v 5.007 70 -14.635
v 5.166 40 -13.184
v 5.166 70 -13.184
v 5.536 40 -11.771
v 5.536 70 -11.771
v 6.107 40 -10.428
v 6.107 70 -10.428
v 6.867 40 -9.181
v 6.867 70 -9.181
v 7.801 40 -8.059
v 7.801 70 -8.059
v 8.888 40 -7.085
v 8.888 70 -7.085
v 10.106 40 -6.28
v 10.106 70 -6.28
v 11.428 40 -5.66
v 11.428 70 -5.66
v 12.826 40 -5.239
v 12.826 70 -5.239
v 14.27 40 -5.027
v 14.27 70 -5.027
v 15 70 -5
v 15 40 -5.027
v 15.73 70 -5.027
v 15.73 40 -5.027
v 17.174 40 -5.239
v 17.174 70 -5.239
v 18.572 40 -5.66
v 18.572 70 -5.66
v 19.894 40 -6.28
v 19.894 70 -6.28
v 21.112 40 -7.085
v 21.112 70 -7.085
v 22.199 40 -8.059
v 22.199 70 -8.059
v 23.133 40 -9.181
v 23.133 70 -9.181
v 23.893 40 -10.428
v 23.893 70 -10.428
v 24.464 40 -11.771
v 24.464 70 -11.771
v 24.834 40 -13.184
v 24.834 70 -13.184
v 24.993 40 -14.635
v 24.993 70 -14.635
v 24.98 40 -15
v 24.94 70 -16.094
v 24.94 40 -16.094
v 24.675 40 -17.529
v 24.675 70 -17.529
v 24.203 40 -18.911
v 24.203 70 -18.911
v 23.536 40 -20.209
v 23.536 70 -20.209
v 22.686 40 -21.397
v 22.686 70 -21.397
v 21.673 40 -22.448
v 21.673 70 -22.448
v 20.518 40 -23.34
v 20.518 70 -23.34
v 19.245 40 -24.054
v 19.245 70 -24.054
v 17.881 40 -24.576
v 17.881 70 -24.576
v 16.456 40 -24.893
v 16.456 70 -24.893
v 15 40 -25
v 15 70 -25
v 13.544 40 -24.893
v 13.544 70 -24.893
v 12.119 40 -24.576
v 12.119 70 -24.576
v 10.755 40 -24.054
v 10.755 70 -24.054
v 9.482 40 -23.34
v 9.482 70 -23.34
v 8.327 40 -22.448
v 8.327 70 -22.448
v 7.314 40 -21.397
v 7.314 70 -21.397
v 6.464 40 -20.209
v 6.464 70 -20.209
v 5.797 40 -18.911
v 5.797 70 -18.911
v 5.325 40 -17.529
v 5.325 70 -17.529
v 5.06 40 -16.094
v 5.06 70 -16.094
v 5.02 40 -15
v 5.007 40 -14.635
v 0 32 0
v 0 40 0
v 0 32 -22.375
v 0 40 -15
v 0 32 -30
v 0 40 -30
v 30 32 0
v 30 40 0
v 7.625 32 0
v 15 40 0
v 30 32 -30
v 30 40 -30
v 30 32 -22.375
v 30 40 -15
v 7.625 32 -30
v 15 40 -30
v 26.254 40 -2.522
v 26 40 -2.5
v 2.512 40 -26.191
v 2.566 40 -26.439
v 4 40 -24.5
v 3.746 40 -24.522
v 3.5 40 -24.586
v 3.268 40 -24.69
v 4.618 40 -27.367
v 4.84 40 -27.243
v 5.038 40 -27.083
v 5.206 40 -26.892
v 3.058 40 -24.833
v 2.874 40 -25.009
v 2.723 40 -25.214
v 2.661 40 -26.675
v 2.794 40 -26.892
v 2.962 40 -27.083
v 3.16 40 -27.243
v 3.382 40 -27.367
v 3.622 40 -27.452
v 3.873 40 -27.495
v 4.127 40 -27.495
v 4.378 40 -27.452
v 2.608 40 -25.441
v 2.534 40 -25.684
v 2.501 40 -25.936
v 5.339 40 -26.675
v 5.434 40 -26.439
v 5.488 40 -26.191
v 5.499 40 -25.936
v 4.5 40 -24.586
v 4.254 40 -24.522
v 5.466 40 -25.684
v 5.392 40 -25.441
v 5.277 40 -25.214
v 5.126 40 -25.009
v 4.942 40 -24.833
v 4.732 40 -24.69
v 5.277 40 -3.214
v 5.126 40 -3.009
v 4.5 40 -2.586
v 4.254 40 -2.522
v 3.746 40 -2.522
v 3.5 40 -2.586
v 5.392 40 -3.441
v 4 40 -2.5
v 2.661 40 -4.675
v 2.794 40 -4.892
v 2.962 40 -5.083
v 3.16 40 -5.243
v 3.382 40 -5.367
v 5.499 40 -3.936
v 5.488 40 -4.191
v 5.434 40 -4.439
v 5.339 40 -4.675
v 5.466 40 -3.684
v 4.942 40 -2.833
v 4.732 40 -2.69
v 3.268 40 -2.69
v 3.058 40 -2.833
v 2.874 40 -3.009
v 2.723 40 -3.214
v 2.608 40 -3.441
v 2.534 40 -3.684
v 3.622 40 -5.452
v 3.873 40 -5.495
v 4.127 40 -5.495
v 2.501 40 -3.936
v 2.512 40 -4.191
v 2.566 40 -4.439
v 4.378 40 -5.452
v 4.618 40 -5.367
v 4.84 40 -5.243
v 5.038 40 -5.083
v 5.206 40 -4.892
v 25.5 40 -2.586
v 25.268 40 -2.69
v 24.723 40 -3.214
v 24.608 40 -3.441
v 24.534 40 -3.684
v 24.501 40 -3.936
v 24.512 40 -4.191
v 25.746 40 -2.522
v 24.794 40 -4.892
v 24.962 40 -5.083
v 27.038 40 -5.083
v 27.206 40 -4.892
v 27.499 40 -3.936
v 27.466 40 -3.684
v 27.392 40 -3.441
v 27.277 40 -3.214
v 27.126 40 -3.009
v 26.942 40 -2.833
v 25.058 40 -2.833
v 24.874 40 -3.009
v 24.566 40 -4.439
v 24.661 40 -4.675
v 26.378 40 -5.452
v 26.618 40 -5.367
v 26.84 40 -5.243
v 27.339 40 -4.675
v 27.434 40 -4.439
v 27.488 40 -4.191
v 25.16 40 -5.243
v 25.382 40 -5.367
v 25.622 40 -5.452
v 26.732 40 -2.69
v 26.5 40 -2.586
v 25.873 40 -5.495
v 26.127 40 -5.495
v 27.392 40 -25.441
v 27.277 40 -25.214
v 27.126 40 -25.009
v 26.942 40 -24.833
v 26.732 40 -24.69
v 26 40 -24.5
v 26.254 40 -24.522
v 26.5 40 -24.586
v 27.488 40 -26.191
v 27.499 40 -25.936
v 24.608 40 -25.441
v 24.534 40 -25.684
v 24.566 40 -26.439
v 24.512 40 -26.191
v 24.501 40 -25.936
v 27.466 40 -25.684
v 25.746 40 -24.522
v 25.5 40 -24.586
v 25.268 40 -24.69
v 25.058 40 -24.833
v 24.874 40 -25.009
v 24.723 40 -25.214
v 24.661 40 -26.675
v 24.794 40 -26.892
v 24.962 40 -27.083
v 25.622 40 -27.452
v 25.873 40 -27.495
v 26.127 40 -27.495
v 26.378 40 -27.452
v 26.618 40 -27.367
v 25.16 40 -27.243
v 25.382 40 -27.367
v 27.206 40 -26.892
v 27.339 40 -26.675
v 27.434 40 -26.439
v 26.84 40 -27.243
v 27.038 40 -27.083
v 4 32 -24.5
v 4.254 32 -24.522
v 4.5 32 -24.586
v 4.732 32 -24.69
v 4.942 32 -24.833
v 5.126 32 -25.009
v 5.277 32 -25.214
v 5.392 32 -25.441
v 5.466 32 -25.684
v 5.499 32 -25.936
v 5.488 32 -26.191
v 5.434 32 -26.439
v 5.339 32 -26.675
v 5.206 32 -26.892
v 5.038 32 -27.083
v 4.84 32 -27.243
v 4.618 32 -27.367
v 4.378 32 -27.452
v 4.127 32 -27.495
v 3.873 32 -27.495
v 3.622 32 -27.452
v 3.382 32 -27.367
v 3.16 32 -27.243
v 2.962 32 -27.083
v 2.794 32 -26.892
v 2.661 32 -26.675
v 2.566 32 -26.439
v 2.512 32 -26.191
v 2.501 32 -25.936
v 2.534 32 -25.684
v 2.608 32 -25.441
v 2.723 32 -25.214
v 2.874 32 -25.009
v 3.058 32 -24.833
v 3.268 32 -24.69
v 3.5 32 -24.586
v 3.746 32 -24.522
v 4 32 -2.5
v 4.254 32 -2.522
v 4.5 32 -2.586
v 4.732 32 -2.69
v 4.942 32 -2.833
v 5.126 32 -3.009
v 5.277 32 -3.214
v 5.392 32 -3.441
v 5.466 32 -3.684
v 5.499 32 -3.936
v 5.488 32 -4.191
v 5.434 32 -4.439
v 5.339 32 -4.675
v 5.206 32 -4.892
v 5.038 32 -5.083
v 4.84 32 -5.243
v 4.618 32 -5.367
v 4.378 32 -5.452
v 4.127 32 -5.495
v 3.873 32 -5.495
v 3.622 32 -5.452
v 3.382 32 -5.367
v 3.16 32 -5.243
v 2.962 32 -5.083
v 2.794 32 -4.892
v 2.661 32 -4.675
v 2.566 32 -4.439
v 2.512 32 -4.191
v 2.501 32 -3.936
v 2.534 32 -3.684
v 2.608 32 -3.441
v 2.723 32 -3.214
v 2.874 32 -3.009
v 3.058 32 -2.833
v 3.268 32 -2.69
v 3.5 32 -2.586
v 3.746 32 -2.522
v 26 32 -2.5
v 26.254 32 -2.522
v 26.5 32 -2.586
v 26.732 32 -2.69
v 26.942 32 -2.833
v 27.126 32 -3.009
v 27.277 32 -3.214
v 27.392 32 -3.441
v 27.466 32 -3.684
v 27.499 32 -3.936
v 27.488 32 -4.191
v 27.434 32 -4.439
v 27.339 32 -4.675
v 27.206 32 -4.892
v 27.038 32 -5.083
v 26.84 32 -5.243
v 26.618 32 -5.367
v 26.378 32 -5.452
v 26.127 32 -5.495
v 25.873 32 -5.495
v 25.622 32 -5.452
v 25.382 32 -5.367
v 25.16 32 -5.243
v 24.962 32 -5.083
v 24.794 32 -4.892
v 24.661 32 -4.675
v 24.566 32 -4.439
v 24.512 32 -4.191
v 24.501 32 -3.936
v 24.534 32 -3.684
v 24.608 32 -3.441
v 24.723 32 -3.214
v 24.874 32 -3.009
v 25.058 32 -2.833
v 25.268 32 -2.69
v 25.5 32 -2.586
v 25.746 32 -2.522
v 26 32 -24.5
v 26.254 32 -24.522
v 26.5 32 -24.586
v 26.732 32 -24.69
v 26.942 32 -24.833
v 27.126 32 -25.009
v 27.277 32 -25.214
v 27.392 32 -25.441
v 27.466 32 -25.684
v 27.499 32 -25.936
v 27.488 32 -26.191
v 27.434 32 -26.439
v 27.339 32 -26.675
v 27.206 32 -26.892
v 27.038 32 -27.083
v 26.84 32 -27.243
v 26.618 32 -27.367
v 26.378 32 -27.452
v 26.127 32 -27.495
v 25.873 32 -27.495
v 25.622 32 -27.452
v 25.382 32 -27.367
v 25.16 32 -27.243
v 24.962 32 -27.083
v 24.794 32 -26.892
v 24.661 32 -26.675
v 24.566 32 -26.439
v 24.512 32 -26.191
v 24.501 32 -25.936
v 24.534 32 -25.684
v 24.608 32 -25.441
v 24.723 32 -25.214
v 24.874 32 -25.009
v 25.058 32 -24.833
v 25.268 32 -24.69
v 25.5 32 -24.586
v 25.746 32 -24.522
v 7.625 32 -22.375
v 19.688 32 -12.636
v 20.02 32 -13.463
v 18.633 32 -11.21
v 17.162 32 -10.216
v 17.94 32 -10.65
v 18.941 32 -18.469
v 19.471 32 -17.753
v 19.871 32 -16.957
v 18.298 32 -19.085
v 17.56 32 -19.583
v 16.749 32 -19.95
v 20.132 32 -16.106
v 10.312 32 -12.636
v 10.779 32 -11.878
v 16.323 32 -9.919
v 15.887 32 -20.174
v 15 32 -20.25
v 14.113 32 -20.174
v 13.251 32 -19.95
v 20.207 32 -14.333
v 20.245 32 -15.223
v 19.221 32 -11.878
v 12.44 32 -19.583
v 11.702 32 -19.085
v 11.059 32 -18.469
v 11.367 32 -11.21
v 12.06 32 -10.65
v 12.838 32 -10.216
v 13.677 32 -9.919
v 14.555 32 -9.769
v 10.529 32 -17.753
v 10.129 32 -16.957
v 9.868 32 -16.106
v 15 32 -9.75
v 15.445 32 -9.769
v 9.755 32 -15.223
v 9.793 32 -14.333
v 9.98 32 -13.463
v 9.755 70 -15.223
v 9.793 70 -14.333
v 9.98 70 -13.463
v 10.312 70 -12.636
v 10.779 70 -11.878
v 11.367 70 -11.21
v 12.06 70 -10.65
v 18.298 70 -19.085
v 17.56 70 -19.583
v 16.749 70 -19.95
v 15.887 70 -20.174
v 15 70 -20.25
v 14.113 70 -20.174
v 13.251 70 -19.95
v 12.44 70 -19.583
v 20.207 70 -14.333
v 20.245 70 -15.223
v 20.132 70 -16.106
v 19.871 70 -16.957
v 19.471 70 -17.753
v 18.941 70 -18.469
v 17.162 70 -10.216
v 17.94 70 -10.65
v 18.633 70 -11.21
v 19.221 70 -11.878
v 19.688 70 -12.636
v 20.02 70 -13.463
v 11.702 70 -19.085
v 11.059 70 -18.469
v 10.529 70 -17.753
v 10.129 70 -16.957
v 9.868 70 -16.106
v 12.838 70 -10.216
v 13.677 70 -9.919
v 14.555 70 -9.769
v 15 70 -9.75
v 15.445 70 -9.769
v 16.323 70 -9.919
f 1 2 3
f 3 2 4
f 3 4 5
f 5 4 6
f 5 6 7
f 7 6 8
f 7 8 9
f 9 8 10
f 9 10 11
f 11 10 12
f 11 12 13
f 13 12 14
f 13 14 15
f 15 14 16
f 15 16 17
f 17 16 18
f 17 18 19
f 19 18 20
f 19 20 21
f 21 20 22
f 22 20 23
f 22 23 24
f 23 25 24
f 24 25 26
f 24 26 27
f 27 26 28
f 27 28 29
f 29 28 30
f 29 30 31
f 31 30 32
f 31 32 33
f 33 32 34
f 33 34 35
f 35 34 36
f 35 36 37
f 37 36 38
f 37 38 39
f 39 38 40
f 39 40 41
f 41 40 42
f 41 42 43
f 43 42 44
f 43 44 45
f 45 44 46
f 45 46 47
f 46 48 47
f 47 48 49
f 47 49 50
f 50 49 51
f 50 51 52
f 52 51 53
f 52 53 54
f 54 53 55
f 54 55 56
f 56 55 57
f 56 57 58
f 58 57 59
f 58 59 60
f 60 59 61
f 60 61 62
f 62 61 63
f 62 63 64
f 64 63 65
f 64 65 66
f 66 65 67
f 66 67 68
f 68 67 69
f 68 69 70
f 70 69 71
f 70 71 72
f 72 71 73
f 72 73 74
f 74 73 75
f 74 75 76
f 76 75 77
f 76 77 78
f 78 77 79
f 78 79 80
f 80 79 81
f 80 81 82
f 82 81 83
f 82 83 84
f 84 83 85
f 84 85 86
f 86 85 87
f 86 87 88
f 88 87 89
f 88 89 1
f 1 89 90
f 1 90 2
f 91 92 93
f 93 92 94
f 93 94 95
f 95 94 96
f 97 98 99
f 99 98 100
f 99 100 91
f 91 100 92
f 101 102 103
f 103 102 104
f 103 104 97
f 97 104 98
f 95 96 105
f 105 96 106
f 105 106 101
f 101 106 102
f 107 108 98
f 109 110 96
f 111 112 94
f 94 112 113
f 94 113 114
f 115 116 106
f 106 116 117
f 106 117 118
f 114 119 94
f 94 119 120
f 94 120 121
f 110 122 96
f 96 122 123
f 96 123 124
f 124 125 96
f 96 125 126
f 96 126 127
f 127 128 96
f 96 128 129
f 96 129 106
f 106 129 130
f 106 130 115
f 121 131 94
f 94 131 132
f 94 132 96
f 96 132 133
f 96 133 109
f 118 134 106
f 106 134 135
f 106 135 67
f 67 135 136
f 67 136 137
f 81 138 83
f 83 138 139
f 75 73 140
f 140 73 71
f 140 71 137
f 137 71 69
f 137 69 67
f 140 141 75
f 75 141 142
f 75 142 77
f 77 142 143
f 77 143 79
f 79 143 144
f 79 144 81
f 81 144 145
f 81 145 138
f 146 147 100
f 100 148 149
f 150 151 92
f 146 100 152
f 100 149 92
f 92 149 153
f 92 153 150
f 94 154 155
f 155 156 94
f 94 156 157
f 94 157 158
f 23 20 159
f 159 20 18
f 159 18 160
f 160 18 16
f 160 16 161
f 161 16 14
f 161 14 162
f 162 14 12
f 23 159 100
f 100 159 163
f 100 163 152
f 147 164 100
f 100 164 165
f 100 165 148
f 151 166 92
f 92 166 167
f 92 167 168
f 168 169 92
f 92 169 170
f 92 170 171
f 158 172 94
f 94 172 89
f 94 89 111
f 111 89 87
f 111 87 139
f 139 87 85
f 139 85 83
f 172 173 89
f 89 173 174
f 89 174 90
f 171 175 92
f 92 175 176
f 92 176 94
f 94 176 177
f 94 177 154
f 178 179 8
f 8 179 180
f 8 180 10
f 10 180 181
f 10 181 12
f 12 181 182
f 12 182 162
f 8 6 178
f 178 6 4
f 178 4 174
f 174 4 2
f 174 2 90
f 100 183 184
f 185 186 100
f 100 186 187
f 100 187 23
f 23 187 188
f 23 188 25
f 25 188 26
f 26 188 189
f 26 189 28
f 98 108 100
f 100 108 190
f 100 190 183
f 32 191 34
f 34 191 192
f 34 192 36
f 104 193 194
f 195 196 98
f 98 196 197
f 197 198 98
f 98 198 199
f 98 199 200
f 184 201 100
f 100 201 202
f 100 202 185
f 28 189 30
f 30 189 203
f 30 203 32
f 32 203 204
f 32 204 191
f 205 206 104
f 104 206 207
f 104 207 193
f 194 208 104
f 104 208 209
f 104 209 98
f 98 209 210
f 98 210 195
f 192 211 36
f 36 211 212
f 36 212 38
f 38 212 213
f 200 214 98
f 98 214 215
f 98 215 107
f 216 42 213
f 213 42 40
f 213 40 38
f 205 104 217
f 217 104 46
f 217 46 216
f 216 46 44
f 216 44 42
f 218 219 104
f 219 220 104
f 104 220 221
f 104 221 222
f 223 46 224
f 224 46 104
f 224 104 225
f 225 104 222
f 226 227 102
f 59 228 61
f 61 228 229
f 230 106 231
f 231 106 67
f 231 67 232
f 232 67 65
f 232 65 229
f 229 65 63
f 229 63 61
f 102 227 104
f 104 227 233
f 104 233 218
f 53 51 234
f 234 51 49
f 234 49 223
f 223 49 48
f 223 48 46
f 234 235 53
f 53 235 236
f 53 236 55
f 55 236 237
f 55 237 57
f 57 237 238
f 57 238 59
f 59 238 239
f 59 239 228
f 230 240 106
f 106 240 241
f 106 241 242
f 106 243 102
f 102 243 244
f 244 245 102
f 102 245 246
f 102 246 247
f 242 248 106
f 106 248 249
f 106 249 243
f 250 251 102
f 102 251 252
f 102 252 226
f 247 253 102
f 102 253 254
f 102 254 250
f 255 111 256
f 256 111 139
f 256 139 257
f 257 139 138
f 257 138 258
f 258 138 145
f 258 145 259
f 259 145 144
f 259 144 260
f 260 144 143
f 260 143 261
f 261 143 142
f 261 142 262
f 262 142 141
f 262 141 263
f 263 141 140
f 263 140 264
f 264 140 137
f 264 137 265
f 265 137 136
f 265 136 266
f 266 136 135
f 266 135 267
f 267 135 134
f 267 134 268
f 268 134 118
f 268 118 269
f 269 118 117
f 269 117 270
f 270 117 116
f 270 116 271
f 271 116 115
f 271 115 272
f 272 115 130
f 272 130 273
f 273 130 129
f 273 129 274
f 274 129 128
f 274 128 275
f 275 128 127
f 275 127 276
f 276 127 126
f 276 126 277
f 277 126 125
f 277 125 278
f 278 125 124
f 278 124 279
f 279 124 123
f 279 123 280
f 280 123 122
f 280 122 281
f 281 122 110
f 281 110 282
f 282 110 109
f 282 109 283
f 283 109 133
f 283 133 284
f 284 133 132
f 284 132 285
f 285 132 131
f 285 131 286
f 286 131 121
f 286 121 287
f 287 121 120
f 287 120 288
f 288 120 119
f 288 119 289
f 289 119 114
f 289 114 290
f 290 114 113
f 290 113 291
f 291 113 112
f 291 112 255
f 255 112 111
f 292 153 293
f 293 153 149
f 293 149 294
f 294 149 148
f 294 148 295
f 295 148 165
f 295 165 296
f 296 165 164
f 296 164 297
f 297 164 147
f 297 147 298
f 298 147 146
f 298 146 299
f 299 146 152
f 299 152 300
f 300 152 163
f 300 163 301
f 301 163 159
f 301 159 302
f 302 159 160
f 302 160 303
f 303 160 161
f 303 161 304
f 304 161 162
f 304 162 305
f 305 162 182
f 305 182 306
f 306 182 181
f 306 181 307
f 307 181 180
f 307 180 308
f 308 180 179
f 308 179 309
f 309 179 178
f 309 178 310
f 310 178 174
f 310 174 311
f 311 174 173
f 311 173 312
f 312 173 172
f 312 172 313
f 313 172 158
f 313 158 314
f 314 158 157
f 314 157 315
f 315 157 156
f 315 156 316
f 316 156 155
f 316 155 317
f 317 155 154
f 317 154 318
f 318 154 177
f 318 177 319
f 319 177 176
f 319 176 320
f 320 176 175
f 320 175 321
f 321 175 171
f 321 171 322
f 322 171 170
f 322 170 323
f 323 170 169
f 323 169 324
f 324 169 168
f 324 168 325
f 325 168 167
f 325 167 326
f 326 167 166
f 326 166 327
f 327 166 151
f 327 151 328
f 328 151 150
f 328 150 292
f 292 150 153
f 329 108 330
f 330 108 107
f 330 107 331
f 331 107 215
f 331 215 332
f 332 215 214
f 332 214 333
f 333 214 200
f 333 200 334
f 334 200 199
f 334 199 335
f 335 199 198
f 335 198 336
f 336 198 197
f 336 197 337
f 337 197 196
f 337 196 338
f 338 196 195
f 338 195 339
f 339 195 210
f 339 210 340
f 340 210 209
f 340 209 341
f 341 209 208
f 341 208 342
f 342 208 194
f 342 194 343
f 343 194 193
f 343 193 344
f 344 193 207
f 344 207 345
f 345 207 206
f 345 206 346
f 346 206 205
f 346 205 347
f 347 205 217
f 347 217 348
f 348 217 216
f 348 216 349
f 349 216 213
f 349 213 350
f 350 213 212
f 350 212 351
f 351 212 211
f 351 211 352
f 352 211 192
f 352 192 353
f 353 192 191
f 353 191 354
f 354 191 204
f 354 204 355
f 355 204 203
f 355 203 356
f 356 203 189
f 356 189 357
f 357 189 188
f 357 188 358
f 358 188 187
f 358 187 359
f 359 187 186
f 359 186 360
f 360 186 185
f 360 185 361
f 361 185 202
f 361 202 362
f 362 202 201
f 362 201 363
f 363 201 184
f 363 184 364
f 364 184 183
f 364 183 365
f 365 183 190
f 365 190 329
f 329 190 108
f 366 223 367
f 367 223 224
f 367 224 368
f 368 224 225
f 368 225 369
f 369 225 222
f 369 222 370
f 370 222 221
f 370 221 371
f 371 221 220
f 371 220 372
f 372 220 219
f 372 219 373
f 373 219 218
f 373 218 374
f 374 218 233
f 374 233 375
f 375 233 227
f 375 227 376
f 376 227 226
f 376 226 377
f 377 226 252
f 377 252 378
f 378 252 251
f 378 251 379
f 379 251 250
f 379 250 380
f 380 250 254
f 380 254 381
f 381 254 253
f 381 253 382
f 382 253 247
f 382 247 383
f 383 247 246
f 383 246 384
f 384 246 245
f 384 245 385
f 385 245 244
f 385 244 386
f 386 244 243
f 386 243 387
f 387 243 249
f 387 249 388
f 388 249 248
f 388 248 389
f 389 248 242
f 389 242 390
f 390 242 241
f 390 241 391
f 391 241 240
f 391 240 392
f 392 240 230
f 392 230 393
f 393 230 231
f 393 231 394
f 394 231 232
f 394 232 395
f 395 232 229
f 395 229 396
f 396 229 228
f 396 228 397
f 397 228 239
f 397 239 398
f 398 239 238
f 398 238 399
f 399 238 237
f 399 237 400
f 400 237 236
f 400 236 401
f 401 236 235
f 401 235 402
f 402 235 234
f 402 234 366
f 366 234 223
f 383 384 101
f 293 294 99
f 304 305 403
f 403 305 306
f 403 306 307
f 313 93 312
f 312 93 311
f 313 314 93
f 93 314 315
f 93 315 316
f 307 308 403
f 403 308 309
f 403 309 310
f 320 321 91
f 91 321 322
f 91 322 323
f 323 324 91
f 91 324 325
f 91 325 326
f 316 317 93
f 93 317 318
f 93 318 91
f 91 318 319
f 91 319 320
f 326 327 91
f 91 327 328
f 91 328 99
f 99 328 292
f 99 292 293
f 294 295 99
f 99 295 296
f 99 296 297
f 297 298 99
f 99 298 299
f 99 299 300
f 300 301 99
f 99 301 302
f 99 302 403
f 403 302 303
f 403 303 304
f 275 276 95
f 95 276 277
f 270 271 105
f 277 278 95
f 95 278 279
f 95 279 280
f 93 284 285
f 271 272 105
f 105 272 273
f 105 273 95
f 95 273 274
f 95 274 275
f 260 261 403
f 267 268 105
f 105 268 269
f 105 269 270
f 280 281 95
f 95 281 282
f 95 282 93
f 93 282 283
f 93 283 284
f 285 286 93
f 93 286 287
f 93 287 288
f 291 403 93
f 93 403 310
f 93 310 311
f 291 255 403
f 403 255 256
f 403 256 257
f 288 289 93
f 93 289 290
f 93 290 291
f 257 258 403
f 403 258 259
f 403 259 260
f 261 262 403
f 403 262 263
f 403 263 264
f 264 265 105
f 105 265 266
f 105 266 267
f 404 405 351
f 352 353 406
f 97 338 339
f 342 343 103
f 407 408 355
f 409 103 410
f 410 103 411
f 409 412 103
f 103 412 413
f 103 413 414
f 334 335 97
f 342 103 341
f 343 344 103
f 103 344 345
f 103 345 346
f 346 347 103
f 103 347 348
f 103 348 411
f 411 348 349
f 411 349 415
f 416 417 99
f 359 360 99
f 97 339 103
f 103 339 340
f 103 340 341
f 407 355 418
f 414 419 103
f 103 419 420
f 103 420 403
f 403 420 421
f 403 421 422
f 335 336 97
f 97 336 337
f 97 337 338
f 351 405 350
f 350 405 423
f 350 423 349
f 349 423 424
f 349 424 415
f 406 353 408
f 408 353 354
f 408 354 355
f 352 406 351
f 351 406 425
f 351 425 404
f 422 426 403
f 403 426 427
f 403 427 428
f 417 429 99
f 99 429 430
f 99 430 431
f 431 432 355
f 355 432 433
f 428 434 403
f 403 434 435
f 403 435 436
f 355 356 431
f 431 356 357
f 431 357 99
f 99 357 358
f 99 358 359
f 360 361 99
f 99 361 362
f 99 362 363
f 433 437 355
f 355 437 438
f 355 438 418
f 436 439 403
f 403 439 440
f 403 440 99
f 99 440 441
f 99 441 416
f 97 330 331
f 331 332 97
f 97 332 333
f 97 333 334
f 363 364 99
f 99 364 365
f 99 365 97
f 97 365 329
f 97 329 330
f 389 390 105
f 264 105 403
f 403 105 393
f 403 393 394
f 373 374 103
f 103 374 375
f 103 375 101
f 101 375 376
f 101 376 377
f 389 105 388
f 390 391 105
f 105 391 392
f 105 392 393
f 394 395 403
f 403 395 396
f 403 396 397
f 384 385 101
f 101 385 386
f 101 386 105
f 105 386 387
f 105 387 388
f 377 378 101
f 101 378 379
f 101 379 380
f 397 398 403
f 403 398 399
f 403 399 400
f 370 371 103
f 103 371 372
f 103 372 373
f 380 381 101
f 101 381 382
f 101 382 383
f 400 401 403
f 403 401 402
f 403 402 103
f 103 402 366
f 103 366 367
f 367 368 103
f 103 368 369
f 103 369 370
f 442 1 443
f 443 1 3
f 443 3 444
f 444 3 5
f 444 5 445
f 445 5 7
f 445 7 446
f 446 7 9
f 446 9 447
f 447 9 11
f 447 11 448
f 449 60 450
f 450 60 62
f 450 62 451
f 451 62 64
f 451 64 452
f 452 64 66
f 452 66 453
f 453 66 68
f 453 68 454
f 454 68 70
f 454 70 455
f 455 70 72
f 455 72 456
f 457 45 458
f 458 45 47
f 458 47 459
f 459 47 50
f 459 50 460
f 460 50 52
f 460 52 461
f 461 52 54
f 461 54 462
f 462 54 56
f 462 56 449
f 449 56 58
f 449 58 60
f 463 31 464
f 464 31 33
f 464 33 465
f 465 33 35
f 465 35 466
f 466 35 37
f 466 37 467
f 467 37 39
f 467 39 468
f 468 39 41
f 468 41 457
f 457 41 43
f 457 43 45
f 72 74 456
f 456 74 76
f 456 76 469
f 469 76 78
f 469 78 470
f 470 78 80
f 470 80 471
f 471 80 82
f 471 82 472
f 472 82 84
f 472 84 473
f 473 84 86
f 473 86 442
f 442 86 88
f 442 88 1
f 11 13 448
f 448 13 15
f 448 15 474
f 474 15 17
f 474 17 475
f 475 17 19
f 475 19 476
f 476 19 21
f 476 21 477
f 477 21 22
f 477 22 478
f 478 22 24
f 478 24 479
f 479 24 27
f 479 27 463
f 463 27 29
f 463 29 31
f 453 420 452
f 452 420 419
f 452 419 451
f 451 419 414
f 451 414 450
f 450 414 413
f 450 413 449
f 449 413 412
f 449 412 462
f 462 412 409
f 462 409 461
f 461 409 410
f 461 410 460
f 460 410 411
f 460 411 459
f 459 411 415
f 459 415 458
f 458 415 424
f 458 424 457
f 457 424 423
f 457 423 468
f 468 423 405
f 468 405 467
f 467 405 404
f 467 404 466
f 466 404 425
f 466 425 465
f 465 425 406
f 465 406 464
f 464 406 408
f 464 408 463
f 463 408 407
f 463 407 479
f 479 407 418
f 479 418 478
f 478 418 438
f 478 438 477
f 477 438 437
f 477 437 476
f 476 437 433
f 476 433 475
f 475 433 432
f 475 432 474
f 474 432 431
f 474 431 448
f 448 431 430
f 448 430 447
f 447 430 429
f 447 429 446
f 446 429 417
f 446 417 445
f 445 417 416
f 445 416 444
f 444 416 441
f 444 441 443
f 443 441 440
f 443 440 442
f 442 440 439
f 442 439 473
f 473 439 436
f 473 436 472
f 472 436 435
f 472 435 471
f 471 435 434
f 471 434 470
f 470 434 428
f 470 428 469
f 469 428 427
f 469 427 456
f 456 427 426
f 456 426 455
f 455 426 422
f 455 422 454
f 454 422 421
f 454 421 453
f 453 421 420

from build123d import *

# Parameters (mm, degrees)
IZIM1_W                     = 30
IZIM1_H                     = 30
Y_KSEKLIK_EKSTR_ZYON1_DEPTH = 40
IZIM2_R                     = 1.5
KES_EKSTR_ZYON1_DEPTH       = 40
IZIM3_R                     = 10
IZIM3_R_2                   = 5.25
Y_KSEKLIK_EKSTR_ZYON2_DEPTH = 40
IZIM4_W                     = 30
IZIM4_H                     = 30
KES_EKSTR_ZYON2_DEPTH       = 32
KES_EKSTR_ZYON3_START       = -10
IZIM5_R                     = 10
KES_EKSTR_ZYON3_DEPTH       = 10
KES_EKSTR_ZYON4_START       = -30
IZIM6_R                     = 5.25
KES_EKSTR_ZYON4_DEPTH       = 30


with BuildPart() as part:
    # Çizim1 → Yükseklik-Ekstrüzyon1 (new body)
    with BuildSketch(Plane(origin=(0, 0, 0), x_dir=(1, 0, 0), z_dir=(0, 1, 0))):
        with Locations((15, 15)):
            Rectangle(IZIM1_W, IZIM1_H)
    extrude(amount=Y_KSEKLIK_EKSTR_ZYON1_DEPTH)

    # Çizim2 → Kes-Ekstrüzyon1 (cut)
    with BuildSketch(Plane(origin=(0, 40, 0), x_dir=(1, 0, 0), z_dir=(0, 1, 0))):
        with Locations(Location((4, 26, 0), (0, 0, 270))):
            Circle(IZIM2_R)
        with Locations(Location((26, 26, 0), (0, 0, 270))):
            Circle(IZIM2_R)
        with Locations(Location((26, 4, 0), (0, 0, 270))):
            Circle(IZIM2_R)
        with Locations(Location((4, 4, 0), (0, 0, 270))):
            Circle(IZIM2_R)
    extrude(amount=-KES_EKSTR_ZYON1_DEPTH, mode=Mode.SUBTRACT)

    # Çizim3 → Yükseklik-Ekstrüzyon2 (add)
    with BuildSketch(Plane(origin=(0, 40, 0), x_dir=(1, 0, 0), z_dir=(0, 1, 0))):
        with Locations(Location((15, 15, 0), (0, 0, 90))):
            Circle(IZIM3_R)
        with Locations(Location((15, 15, 0), (0, 0, 270))):
            Circle(IZIM3_R_2, mode=Mode.SUBTRACT)
    extrude(amount=Y_KSEKLIK_EKSTR_ZYON2_DEPTH)

    # Çizim4 → Kes-Ekstrüzyon2 (cut)
    with BuildSketch(Plane.XZ):
        with Locations((15, -15)):
            Rectangle(IZIM4_W, IZIM4_H)
    extrude(amount=-KES_EKSTR_ZYON2_DEPTH, mode=Mode.SUBTRACT)

    # Çizim5 → Kes-Ekstrüzyon3 (cut)
    with BuildSketch(Plane(origin=(0, 80, 0), x_dir=(1, 0, 0), z_dir=(0, 1, 0)).offset(KES_EKSTR_ZYON3_START)):
        with Locations(Location((15, 15, 0), (0, 0, 90))):
            Circle(IZIM5_R)
    extrude(amount=KES_EKSTR_ZYON3_DEPTH, mode=Mode.SUBTRACT)

    # Çizim6 → Kes-Ekstrüzyon4 (cut)
    with BuildSketch(Plane(origin=(0, 40, 0), x_dir=(1, 0, 0), z_dir=(0, 1, 0)).offset(KES_EKSTR_ZYON4_START)):
        with Locations(Location((15, 15, 0), (0, 0, 270))):
            Circle(IZIM6_R)
    extrude(amount=KES_EKSTR_ZYON4_DEPTH, mode=Mode.SUBTRACT)


solid = part.part
